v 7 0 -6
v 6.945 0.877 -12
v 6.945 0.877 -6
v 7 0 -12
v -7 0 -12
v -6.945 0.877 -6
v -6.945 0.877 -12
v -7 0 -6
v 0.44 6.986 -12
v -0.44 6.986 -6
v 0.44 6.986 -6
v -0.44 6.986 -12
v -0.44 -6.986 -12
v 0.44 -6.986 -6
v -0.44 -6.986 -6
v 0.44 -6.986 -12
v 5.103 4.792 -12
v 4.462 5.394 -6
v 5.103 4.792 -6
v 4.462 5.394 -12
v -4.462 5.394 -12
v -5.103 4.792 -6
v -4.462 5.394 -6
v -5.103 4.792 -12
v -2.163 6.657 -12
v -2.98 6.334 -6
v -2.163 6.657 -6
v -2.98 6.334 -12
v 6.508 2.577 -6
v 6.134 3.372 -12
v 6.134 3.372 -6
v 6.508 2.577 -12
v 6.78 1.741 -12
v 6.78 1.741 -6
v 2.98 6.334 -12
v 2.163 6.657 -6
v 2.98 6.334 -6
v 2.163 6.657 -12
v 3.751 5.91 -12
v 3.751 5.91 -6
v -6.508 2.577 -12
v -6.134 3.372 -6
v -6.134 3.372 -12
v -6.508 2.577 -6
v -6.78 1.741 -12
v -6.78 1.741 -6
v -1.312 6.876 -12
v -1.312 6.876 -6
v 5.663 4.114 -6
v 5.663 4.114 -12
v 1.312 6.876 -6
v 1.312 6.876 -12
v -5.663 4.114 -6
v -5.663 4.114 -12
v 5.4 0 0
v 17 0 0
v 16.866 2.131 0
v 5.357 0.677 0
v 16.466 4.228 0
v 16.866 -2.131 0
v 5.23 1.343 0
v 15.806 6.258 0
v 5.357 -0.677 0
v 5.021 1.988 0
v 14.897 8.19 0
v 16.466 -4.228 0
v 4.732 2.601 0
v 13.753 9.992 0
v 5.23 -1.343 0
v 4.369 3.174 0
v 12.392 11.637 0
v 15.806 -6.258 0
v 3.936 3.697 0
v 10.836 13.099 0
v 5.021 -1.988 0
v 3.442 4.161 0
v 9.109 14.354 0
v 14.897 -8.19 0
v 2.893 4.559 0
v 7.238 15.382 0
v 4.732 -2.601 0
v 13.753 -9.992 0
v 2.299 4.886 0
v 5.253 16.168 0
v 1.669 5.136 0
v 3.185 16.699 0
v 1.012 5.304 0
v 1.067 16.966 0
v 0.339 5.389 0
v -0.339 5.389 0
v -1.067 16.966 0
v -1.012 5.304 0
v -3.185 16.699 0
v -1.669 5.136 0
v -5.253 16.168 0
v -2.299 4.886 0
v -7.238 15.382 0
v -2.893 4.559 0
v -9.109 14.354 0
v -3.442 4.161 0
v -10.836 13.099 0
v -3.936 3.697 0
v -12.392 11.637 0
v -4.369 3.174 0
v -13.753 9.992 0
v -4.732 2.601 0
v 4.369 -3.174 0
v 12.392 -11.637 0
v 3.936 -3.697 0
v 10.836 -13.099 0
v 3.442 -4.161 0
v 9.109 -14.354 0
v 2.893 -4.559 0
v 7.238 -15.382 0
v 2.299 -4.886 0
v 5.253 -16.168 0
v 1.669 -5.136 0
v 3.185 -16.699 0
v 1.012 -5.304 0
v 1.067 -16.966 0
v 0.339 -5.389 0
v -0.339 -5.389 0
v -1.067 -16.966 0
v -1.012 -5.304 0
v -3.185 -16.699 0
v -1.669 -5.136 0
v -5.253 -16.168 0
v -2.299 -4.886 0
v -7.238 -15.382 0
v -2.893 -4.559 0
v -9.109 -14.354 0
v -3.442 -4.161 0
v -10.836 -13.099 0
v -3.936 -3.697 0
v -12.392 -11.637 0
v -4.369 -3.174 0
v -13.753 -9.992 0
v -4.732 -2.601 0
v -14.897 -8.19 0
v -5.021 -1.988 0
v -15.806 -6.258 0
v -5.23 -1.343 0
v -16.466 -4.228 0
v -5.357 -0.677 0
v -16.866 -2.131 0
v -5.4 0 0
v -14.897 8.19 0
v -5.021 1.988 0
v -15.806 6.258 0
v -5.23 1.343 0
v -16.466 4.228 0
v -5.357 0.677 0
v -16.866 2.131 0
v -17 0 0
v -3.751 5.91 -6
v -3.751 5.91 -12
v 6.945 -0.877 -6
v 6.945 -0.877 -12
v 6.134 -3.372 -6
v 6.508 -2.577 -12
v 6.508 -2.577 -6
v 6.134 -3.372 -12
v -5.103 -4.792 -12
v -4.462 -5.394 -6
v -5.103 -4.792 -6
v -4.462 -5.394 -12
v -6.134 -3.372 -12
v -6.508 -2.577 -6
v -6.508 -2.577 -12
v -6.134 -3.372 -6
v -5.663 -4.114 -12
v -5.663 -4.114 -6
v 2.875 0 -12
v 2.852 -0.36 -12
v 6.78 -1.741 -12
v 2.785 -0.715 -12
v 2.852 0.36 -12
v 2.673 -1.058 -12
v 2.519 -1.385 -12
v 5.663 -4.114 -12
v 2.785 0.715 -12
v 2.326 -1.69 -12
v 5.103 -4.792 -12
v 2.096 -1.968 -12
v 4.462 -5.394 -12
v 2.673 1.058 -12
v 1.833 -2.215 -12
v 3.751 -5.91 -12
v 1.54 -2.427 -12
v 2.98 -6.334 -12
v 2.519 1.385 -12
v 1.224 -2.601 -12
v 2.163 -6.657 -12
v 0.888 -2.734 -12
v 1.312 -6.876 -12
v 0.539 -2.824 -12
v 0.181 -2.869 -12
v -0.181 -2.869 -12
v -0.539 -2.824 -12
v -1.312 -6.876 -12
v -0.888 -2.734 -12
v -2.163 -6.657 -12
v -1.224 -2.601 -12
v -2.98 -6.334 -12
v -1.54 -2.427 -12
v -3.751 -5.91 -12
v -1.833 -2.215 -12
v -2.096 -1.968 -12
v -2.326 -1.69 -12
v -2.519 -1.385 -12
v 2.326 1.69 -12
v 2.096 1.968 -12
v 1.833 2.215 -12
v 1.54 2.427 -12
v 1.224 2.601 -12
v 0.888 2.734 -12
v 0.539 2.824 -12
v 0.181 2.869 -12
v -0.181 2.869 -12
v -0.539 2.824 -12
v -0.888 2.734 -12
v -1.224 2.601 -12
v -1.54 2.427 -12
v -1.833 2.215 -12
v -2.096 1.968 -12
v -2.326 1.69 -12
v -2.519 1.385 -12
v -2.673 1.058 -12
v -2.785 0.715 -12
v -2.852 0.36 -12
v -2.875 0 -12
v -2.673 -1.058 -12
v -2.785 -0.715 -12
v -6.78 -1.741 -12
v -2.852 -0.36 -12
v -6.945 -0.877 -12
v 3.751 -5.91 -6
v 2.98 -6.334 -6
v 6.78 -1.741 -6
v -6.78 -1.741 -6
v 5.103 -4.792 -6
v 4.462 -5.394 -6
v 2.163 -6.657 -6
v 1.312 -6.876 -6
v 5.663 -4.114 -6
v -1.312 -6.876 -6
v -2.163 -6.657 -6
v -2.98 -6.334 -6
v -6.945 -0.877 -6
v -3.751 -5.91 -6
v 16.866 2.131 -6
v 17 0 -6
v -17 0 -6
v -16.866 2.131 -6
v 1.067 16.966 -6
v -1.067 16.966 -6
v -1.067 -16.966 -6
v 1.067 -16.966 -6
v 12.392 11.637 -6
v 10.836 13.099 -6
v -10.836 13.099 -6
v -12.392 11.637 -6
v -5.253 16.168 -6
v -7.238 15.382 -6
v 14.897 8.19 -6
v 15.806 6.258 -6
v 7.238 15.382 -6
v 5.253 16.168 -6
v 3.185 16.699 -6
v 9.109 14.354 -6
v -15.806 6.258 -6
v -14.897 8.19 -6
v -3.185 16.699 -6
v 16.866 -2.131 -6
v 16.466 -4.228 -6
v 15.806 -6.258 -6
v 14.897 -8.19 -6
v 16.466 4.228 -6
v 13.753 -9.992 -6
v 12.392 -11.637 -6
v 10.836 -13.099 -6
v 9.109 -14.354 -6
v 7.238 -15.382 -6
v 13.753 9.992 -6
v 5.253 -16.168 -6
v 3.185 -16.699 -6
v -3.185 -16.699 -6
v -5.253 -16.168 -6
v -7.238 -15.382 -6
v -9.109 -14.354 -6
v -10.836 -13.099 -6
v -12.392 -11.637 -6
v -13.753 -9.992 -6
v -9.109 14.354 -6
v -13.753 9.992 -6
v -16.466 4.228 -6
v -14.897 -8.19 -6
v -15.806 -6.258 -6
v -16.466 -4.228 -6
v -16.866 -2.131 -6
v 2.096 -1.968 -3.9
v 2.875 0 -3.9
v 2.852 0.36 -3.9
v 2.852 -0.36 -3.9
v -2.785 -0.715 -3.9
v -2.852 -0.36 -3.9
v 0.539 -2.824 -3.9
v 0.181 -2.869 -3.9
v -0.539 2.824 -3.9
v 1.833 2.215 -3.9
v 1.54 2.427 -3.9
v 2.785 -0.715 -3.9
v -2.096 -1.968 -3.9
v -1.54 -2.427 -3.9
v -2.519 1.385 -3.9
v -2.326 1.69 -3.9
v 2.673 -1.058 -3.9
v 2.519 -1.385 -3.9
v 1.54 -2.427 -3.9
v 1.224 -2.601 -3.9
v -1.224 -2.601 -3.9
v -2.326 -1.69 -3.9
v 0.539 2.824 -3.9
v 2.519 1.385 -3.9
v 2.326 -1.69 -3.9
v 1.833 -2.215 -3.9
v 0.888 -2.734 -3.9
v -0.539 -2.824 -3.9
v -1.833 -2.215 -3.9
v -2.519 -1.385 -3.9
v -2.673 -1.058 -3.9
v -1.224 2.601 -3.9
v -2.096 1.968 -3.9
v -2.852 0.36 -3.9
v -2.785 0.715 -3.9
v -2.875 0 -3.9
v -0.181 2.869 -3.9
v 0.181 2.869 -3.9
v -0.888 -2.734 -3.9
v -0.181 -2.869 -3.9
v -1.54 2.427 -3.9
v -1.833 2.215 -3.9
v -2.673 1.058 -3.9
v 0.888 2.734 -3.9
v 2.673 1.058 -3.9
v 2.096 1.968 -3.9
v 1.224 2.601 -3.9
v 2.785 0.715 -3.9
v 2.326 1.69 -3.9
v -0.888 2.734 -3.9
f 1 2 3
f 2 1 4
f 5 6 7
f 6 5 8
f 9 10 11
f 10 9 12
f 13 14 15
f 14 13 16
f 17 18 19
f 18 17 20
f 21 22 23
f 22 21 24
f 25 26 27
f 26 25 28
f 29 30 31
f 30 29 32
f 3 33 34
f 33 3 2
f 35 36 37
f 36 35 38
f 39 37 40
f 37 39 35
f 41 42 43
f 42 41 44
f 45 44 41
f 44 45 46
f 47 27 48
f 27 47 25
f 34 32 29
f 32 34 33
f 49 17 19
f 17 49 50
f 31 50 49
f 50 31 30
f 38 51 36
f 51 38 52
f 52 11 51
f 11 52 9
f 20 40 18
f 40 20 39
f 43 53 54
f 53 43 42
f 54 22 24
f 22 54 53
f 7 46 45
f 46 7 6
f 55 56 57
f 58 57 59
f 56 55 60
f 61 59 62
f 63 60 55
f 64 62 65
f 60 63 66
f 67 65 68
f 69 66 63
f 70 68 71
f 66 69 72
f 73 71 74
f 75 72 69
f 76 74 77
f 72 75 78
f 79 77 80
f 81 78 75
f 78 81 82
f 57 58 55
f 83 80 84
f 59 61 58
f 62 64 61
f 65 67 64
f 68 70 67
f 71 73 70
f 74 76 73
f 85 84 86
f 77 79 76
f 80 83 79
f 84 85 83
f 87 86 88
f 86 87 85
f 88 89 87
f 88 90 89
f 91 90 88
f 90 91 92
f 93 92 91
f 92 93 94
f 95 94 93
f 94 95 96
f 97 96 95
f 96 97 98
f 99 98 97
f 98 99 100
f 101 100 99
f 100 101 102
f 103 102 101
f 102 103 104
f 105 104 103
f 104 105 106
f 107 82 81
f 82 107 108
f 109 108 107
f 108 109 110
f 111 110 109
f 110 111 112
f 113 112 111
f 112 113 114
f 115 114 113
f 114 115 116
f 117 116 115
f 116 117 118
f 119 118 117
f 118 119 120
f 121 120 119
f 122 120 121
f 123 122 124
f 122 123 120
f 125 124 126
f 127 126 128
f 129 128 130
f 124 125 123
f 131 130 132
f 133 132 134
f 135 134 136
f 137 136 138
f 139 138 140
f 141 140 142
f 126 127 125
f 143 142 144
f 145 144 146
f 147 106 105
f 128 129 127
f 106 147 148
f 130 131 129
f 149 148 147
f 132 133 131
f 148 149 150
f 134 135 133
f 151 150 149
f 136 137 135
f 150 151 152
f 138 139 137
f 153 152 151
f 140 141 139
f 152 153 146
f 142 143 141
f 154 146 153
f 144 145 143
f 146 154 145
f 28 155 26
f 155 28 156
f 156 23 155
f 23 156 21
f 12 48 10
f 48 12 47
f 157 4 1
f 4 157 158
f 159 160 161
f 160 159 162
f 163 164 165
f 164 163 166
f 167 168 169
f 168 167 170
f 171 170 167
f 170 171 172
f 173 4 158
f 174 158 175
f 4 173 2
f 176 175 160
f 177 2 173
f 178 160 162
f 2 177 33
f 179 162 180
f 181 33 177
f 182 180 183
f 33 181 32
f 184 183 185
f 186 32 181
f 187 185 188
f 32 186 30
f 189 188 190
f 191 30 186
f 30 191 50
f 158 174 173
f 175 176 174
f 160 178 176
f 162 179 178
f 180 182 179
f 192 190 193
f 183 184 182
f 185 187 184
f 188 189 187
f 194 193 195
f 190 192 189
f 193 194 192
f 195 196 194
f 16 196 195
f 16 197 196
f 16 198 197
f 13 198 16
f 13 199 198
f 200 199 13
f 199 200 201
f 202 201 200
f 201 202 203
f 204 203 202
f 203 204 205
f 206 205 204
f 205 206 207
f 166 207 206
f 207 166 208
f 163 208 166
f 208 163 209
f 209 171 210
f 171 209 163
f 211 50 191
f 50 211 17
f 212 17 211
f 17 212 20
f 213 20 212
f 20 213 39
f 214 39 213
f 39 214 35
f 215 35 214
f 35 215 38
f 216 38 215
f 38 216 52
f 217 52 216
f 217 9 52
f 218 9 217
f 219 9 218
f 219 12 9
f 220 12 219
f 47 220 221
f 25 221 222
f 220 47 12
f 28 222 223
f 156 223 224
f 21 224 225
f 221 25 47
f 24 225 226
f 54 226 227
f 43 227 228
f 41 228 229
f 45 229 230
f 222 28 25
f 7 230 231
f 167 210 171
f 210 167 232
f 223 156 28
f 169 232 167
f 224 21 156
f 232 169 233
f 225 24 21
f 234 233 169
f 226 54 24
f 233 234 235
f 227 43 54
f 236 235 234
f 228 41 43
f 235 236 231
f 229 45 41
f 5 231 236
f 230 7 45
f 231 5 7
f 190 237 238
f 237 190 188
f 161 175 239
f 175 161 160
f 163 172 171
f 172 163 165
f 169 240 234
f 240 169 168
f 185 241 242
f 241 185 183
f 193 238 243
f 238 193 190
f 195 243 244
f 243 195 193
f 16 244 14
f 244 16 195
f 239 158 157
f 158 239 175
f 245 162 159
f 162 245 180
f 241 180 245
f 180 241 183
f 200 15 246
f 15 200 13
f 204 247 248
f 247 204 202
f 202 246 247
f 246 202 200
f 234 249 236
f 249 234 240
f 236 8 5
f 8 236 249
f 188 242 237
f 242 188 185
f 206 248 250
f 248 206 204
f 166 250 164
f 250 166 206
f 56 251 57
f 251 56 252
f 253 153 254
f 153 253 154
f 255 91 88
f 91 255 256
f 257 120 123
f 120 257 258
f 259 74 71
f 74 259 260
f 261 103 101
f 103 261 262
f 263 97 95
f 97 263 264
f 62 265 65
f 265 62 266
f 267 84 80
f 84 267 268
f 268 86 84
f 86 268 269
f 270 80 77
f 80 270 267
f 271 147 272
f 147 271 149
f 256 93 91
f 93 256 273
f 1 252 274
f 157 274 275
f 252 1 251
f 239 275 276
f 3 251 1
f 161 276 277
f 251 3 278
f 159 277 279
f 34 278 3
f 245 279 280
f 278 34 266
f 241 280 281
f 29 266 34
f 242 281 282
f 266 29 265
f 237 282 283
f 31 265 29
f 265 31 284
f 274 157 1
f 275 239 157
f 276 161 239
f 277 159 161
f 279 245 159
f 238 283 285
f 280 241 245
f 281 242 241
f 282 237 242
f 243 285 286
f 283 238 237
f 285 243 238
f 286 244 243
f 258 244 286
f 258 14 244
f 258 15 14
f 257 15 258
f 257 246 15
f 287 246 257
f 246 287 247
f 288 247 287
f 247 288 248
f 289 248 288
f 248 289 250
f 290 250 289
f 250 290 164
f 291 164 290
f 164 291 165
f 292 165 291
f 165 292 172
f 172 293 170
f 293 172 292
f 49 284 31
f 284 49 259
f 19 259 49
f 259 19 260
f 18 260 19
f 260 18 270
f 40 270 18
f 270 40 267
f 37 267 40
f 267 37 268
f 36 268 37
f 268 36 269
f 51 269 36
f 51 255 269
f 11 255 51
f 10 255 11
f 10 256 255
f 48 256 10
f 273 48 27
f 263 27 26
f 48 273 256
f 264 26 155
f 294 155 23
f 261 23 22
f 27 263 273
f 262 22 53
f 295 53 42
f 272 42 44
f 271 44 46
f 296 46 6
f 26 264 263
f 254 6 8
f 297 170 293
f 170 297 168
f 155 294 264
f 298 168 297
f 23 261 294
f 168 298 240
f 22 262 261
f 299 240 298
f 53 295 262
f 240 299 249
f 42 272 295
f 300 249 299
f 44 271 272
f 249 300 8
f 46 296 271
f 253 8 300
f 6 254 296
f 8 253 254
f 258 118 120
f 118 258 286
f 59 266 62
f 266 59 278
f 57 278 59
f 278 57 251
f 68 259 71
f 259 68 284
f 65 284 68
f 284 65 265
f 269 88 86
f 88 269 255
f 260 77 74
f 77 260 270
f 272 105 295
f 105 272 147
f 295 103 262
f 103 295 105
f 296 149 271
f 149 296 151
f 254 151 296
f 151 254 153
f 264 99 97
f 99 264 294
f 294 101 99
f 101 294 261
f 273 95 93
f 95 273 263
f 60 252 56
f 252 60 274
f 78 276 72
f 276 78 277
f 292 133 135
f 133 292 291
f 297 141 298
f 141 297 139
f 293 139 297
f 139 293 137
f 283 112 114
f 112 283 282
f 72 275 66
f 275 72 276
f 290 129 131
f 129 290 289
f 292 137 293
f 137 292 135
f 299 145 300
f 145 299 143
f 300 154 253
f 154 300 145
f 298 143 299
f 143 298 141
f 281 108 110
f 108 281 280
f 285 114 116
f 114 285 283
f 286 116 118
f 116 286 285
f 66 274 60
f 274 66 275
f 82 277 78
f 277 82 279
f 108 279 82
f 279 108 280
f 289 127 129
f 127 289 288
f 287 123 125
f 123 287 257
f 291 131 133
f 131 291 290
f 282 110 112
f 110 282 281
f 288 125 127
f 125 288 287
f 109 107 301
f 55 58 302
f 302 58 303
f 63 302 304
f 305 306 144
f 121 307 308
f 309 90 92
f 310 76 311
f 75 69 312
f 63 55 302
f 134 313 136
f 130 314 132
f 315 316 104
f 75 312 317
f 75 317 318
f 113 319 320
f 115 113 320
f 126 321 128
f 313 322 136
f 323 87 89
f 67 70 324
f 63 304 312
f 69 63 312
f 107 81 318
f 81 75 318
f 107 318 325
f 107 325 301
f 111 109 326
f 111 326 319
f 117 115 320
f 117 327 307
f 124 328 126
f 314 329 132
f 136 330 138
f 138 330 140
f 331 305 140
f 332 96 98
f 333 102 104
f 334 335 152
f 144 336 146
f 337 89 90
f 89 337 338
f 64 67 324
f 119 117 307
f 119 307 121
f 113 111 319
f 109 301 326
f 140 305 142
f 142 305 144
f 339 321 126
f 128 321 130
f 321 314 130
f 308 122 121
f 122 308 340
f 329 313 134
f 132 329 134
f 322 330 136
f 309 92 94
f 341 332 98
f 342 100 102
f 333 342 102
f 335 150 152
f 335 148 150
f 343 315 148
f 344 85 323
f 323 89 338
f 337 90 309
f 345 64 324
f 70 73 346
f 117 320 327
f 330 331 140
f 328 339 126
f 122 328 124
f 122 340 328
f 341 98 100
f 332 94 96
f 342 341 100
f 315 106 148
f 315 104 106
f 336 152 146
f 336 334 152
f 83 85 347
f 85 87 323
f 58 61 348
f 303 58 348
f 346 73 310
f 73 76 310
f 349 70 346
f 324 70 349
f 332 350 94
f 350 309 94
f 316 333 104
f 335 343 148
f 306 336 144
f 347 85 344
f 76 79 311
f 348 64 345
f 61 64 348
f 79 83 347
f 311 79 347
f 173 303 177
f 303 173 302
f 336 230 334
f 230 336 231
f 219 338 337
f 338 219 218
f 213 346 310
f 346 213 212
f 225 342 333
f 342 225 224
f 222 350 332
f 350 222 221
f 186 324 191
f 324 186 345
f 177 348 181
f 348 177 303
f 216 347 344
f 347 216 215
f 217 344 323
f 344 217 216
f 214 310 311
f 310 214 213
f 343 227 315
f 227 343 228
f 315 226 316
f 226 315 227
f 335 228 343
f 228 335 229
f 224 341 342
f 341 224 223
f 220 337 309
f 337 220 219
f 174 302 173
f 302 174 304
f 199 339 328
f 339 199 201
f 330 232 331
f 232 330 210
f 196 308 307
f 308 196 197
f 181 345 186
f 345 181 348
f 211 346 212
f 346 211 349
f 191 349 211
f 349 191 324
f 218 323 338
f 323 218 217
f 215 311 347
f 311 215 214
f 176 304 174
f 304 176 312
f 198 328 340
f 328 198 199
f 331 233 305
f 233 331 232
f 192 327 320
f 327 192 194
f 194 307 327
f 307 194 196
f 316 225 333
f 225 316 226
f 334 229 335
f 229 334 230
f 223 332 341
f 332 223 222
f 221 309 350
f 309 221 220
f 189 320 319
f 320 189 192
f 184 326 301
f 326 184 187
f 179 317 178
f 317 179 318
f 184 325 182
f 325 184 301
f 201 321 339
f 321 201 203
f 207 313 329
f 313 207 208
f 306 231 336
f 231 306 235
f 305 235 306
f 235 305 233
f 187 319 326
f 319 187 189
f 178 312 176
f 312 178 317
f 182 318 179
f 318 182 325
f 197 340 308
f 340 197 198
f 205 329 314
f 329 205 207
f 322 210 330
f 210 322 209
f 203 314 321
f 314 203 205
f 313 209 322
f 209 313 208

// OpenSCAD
$fn = 50;


difference() {
	union() {
		translate(v = [0, 0, -12.0000000000]) {
			cylinder(h = 12, r = 7.0000000000);
		}
		translate(v = [0, 0, -6.0000000000]) {
			cylinder(h = 6, r = 17.0000000000);
		}
	}
	union() {
		translate(v = [0, 0, 0]) {
			rotate(a = [0, 0, 0]) {
				difference() {
					union() {
						#translate(v = [0, 0, -12.0000000000]) {
							cylinder(h = 12, r = 2.6000000000);
						}
						#translate(v = [0, 0, -3.9000000000]) {
							cylinder(h = 3.9000000000, r1 = 2.8750000000, r2 = 5.4000000000);
						}
						#translate(v = [0, 0, -12.0000000000]) {
							cylinder(h = 12, r = 2.8750000000);
						}
						#translate(v = [0, 0, -12.0000000000]) {
							cylinder(h = 12, r = 2.6000000000);
						}
					}
					union();
				}
			}
		}
	}
}
